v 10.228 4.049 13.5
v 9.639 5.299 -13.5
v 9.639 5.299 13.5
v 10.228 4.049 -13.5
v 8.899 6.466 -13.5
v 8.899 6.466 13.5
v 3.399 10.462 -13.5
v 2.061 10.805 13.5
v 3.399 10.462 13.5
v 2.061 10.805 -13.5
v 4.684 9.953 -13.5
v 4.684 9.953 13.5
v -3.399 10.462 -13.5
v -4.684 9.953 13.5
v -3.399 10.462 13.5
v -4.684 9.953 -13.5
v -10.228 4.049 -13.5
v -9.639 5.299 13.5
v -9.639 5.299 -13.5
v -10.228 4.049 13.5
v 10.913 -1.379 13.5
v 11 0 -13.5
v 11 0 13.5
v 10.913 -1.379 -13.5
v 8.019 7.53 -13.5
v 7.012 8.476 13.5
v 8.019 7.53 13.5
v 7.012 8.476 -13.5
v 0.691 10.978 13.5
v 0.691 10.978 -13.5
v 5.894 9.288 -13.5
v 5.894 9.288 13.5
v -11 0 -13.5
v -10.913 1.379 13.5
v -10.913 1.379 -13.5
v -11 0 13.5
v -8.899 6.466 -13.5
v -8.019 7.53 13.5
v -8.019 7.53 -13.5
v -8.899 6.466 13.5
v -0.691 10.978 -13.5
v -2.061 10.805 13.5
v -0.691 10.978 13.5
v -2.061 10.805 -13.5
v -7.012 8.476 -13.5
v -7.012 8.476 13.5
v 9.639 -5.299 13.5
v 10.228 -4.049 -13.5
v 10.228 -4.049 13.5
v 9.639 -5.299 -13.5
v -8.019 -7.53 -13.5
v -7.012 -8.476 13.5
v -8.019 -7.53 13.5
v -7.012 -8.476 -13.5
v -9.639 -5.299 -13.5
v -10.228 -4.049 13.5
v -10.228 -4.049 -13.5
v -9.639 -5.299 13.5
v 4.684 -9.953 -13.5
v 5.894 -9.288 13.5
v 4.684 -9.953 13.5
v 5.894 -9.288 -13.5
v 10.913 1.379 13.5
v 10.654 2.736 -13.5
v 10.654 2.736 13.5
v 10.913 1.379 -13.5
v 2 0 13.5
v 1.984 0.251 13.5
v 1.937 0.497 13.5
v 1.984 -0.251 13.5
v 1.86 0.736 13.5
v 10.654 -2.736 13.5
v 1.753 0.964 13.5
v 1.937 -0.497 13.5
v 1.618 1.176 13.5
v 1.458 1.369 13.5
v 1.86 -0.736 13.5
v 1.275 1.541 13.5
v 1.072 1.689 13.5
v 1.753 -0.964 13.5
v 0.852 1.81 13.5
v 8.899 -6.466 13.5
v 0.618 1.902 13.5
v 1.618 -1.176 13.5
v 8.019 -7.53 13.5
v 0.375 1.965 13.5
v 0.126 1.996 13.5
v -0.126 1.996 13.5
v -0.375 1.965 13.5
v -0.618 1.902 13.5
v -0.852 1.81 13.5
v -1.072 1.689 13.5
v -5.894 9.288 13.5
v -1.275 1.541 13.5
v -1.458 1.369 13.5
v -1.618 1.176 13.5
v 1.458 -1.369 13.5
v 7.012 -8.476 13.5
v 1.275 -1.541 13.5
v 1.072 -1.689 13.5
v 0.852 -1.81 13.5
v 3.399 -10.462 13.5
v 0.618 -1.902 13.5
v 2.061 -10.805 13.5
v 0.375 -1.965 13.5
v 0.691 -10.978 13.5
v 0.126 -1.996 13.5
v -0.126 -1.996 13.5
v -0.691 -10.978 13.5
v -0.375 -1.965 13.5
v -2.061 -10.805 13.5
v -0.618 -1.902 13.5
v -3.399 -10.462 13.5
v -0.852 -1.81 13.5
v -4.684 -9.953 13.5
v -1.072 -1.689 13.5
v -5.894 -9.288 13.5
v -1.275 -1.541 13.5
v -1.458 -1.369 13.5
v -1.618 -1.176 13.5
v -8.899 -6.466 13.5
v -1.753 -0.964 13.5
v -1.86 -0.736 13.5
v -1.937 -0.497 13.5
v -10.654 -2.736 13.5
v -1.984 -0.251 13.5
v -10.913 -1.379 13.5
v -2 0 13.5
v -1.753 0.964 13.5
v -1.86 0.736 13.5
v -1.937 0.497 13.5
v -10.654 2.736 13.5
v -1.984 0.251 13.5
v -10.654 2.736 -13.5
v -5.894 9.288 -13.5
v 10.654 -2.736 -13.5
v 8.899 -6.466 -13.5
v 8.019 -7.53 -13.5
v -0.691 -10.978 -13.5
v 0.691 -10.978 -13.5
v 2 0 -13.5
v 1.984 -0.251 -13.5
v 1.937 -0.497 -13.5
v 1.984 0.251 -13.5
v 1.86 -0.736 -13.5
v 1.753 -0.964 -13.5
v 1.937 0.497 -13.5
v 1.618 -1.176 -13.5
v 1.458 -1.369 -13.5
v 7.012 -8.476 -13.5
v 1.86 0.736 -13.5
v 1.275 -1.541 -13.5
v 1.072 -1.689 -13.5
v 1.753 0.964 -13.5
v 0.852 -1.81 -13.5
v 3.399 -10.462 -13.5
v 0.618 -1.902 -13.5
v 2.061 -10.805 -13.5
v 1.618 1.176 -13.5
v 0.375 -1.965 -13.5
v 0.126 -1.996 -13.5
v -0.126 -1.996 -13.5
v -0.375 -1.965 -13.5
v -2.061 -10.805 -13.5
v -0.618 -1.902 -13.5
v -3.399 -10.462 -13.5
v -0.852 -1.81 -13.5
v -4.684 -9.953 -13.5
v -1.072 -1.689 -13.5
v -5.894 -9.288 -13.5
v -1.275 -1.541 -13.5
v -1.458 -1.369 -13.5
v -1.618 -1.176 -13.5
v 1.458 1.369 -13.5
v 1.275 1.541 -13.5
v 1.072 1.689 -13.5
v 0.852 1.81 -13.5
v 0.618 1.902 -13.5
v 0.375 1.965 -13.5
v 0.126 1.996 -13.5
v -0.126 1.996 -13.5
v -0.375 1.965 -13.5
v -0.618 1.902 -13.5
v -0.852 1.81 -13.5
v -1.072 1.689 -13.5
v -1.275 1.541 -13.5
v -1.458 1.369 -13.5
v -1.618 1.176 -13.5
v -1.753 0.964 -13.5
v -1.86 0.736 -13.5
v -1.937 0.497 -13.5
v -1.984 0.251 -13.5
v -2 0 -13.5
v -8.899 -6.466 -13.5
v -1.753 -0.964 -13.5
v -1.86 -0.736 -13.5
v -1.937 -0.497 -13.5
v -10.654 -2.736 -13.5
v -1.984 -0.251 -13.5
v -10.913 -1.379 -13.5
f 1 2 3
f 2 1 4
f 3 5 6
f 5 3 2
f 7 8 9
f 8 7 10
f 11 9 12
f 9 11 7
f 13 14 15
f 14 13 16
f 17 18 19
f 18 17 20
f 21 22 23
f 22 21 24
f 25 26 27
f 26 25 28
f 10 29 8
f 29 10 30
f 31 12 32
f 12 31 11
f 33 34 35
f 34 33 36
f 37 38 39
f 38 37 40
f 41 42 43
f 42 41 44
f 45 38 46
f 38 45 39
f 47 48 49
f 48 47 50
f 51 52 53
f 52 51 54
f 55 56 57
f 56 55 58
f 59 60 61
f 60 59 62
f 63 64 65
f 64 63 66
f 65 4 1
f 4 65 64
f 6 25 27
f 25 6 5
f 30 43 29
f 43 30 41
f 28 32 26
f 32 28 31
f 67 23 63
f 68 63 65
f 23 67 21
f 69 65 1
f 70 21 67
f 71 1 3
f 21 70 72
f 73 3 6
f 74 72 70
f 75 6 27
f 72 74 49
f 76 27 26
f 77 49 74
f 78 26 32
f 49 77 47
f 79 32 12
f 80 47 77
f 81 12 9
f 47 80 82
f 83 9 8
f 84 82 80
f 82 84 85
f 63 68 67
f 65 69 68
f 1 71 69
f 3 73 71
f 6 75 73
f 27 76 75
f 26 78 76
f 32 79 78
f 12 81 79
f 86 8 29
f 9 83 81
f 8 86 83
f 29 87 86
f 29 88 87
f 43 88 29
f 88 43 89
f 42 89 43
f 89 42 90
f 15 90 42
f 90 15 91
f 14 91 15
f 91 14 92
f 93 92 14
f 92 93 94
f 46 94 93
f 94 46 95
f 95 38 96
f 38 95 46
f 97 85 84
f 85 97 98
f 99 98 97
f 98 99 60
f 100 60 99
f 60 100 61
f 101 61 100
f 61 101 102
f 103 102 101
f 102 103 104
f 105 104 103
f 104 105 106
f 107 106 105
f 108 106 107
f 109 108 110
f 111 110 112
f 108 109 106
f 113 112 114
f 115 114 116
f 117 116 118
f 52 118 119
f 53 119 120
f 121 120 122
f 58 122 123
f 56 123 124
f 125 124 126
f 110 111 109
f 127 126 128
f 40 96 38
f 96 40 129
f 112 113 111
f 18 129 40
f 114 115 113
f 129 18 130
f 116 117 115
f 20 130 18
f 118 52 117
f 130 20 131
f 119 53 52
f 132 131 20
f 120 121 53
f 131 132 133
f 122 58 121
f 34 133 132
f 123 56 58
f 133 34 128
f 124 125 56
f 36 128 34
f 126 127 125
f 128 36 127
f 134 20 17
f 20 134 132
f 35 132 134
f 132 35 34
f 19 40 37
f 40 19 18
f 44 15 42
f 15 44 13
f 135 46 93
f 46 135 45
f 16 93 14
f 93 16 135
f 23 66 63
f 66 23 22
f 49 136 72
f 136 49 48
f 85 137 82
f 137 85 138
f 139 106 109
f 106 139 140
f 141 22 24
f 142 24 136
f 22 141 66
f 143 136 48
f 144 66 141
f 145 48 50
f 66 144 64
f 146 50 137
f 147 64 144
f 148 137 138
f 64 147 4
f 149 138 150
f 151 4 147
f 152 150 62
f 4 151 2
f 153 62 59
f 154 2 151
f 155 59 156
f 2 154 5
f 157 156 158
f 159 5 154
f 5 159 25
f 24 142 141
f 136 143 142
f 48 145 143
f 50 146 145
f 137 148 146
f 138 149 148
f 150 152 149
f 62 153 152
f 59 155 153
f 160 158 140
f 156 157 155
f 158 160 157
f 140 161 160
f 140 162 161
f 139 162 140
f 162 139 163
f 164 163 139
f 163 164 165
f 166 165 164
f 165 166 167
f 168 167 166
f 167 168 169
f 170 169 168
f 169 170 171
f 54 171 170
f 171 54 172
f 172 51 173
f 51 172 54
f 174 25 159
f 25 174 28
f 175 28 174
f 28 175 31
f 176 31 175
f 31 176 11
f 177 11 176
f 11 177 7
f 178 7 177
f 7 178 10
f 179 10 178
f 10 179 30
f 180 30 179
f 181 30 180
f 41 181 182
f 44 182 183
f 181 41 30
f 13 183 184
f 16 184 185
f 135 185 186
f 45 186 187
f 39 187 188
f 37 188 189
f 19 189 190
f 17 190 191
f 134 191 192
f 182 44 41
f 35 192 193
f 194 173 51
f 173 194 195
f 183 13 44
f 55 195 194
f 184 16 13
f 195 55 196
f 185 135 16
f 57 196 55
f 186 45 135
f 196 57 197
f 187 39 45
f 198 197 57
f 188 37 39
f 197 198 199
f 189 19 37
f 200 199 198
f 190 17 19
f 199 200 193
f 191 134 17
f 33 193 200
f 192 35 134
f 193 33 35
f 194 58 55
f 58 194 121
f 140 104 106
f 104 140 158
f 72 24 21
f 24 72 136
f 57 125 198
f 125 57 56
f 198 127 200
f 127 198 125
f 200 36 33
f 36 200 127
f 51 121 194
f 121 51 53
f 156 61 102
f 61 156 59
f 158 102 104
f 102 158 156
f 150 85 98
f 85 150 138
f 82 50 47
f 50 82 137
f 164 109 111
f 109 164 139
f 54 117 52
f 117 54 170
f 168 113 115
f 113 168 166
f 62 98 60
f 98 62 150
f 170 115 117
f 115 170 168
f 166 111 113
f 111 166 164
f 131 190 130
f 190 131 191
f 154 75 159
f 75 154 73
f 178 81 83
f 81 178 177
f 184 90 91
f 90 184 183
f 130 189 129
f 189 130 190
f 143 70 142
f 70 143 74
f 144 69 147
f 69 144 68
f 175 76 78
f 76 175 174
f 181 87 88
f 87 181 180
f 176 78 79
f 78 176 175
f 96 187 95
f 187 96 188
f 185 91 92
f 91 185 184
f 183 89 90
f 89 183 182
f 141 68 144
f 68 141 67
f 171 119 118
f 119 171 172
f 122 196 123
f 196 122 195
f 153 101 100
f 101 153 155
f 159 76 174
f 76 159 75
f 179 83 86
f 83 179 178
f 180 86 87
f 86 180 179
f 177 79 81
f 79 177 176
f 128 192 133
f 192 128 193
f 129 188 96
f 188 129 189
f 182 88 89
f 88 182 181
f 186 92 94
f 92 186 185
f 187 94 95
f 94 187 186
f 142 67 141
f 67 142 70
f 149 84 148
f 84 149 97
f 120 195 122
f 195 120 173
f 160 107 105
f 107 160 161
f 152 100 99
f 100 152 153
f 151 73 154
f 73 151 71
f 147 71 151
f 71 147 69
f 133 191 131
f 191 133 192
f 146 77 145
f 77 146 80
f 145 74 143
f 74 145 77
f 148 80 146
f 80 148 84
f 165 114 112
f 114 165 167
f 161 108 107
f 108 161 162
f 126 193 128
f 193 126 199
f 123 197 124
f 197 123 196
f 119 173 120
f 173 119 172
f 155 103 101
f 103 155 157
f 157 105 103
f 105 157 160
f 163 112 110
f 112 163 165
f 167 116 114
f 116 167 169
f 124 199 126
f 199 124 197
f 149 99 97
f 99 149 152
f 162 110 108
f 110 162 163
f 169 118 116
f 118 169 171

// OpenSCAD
$fn = 50;


difference() {
	union() {
		translate(v = [0, 0, -13.5000000000]) {
			cylinder(h = 27, r = 11.0000000000);
		}
	}
	union() {
		translate(v = [0, 0, -100.0000000000]) {
			cylinder(h = 200, r = 2);
		}
	}
}
